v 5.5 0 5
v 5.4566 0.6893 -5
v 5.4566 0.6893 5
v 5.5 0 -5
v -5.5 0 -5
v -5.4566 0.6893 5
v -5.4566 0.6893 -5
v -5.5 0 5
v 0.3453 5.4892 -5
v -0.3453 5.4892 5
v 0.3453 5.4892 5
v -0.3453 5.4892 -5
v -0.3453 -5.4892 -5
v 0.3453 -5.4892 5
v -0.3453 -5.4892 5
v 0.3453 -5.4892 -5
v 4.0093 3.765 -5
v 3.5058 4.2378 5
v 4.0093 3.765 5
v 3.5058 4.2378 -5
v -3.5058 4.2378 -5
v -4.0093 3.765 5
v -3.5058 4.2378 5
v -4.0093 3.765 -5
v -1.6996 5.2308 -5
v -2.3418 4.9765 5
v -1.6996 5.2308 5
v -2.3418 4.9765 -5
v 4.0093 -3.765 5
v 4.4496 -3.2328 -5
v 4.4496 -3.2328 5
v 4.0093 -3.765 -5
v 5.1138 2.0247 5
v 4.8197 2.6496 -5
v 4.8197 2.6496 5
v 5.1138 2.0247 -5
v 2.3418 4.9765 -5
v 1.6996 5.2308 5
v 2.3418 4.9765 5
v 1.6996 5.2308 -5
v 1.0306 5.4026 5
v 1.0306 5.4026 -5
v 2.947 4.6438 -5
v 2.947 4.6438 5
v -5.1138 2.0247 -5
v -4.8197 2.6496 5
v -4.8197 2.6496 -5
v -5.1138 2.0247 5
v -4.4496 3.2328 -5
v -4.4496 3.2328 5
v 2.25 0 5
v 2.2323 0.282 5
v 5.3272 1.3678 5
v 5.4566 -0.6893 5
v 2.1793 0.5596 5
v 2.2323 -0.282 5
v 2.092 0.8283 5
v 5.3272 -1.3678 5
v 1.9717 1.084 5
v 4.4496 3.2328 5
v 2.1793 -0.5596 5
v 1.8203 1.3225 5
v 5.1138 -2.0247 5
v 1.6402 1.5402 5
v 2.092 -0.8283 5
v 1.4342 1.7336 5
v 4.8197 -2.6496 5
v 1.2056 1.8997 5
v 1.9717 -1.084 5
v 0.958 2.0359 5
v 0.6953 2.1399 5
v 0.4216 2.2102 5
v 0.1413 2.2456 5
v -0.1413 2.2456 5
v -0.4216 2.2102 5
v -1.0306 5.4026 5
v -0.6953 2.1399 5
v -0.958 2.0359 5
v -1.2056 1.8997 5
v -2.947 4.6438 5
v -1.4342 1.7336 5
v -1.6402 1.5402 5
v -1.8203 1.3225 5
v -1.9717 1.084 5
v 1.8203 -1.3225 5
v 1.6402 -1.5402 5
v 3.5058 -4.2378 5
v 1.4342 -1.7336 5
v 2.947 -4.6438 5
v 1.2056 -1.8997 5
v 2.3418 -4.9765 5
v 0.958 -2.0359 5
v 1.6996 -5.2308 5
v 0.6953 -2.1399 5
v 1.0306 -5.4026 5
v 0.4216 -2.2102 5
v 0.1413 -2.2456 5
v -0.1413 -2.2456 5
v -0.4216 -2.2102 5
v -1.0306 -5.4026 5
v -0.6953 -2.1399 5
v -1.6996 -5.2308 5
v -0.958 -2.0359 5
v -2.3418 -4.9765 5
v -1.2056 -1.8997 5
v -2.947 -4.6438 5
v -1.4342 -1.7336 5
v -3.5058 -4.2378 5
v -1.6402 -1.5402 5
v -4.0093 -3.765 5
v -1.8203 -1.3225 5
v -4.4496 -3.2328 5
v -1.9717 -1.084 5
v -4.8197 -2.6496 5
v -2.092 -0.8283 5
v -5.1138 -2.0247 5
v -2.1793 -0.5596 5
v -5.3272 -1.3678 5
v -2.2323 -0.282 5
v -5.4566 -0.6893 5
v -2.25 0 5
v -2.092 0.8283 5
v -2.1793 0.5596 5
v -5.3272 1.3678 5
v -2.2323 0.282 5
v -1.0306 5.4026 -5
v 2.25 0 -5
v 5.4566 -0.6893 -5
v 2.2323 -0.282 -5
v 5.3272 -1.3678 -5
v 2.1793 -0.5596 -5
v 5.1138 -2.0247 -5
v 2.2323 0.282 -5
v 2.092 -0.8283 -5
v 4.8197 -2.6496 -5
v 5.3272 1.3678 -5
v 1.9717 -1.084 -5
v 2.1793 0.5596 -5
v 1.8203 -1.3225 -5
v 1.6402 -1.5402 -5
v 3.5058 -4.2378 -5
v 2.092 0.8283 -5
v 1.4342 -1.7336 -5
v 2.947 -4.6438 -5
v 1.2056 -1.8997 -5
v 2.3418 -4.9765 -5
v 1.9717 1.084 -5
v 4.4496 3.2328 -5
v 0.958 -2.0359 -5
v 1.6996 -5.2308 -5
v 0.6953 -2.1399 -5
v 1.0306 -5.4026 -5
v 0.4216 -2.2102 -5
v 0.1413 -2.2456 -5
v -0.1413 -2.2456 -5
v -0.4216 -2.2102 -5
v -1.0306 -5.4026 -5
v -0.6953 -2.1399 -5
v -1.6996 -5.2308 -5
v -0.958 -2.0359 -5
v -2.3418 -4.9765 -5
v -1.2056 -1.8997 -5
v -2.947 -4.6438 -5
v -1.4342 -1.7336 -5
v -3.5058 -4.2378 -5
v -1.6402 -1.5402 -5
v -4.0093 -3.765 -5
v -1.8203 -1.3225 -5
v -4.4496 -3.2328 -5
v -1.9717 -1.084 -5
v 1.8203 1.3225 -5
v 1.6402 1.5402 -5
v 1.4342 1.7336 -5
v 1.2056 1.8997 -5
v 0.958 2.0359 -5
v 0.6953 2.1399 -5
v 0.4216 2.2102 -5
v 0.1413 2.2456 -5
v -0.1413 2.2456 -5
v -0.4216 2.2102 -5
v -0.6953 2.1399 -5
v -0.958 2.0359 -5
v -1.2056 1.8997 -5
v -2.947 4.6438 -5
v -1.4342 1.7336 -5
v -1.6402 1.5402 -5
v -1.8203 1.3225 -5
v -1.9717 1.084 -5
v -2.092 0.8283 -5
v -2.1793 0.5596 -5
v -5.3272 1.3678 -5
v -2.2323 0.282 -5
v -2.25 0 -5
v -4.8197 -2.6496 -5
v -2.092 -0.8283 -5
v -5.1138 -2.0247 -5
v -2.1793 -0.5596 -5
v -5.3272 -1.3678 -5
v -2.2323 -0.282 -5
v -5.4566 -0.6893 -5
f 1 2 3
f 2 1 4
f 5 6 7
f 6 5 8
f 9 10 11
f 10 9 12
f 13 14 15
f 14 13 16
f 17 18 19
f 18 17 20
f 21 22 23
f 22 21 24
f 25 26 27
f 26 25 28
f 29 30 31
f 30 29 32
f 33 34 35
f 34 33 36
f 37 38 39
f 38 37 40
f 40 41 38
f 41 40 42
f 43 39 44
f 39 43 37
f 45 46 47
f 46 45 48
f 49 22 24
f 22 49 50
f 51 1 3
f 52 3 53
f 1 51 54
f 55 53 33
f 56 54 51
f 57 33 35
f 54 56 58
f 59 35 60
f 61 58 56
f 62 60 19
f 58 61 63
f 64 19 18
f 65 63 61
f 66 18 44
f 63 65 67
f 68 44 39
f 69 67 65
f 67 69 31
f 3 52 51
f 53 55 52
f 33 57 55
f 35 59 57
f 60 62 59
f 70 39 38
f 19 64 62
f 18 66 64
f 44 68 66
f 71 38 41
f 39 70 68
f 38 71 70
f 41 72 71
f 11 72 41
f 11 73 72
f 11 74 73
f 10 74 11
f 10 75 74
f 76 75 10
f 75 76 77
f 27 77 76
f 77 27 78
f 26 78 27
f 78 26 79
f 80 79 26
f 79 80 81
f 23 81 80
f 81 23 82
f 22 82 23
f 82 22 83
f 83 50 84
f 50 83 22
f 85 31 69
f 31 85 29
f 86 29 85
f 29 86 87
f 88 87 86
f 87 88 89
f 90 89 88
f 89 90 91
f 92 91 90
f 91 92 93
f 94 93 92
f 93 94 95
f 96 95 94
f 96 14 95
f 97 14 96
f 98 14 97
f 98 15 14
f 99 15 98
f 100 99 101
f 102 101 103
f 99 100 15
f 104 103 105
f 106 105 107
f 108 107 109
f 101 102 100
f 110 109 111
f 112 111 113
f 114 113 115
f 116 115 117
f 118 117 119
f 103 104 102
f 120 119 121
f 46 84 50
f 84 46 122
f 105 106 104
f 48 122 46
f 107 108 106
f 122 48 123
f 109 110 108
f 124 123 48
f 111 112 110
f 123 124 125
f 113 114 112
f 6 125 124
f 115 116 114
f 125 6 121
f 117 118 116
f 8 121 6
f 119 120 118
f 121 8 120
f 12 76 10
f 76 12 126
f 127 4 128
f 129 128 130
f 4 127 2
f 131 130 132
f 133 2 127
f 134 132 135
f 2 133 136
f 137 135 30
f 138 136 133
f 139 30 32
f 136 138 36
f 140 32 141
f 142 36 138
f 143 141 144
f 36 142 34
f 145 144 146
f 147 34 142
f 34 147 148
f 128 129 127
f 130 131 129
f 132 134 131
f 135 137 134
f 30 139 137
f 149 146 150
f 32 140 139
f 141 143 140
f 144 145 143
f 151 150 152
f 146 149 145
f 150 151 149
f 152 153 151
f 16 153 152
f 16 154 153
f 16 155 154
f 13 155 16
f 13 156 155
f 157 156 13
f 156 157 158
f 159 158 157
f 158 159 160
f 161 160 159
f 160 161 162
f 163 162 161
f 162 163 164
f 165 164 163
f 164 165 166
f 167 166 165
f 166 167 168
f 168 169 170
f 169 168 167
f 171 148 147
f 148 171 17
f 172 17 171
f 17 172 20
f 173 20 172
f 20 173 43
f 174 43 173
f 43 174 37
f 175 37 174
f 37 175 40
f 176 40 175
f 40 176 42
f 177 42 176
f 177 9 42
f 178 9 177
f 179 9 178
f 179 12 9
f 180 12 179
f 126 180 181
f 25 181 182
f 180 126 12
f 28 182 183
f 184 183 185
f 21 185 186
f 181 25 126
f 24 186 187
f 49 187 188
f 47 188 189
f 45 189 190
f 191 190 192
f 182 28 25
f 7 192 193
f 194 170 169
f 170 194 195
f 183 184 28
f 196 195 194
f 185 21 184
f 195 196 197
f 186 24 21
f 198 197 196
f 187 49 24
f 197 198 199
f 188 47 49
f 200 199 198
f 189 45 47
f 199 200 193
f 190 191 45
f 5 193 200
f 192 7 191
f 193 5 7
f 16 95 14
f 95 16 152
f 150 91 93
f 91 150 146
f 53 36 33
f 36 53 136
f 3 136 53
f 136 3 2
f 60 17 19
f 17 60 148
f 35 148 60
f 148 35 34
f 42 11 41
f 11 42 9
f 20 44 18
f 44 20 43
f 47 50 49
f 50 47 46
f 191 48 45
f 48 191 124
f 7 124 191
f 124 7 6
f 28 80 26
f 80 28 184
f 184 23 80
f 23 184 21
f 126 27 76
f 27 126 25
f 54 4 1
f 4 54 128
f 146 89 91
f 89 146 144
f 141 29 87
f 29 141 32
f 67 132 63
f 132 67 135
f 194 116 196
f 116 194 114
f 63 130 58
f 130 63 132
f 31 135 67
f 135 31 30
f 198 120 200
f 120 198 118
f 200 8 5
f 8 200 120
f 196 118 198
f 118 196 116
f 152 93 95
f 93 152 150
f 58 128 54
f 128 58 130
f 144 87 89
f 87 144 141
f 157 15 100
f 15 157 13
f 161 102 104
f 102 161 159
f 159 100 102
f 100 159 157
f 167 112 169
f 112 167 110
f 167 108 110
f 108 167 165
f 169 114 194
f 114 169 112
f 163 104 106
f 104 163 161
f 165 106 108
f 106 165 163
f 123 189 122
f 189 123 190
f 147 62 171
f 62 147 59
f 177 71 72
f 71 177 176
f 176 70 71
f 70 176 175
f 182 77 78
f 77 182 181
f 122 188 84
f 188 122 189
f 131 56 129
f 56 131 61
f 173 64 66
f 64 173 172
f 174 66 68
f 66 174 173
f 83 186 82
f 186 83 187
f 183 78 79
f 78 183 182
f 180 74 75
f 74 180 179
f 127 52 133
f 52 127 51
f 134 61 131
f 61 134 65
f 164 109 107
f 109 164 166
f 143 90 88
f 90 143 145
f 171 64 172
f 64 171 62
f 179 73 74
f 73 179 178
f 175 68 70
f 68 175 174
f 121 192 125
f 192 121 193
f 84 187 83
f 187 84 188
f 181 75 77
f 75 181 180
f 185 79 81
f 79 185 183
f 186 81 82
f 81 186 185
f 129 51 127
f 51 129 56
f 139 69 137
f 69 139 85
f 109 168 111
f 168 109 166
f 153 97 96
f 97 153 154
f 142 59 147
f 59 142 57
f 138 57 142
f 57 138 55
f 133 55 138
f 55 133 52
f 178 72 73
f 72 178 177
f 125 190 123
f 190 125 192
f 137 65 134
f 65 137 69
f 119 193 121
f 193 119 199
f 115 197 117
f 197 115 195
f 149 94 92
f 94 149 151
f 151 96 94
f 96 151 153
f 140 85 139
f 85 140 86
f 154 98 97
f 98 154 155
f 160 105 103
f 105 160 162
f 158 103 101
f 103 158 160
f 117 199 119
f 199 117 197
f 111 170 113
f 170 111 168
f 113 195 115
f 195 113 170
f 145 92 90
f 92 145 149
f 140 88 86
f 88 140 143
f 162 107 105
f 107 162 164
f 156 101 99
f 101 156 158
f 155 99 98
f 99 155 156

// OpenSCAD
$fn = 50;


difference() {
	union() {
		translate(v = [0, 0, -5.0000000000]) {
			cylinder(h = 10, r = 5.5000000000);
		}
	}
	union() {
		translate(v = [0, 0, -100.0000000000]) {
			cylinder(h = 200, r = 2.2500000000);
		}
	}
}
